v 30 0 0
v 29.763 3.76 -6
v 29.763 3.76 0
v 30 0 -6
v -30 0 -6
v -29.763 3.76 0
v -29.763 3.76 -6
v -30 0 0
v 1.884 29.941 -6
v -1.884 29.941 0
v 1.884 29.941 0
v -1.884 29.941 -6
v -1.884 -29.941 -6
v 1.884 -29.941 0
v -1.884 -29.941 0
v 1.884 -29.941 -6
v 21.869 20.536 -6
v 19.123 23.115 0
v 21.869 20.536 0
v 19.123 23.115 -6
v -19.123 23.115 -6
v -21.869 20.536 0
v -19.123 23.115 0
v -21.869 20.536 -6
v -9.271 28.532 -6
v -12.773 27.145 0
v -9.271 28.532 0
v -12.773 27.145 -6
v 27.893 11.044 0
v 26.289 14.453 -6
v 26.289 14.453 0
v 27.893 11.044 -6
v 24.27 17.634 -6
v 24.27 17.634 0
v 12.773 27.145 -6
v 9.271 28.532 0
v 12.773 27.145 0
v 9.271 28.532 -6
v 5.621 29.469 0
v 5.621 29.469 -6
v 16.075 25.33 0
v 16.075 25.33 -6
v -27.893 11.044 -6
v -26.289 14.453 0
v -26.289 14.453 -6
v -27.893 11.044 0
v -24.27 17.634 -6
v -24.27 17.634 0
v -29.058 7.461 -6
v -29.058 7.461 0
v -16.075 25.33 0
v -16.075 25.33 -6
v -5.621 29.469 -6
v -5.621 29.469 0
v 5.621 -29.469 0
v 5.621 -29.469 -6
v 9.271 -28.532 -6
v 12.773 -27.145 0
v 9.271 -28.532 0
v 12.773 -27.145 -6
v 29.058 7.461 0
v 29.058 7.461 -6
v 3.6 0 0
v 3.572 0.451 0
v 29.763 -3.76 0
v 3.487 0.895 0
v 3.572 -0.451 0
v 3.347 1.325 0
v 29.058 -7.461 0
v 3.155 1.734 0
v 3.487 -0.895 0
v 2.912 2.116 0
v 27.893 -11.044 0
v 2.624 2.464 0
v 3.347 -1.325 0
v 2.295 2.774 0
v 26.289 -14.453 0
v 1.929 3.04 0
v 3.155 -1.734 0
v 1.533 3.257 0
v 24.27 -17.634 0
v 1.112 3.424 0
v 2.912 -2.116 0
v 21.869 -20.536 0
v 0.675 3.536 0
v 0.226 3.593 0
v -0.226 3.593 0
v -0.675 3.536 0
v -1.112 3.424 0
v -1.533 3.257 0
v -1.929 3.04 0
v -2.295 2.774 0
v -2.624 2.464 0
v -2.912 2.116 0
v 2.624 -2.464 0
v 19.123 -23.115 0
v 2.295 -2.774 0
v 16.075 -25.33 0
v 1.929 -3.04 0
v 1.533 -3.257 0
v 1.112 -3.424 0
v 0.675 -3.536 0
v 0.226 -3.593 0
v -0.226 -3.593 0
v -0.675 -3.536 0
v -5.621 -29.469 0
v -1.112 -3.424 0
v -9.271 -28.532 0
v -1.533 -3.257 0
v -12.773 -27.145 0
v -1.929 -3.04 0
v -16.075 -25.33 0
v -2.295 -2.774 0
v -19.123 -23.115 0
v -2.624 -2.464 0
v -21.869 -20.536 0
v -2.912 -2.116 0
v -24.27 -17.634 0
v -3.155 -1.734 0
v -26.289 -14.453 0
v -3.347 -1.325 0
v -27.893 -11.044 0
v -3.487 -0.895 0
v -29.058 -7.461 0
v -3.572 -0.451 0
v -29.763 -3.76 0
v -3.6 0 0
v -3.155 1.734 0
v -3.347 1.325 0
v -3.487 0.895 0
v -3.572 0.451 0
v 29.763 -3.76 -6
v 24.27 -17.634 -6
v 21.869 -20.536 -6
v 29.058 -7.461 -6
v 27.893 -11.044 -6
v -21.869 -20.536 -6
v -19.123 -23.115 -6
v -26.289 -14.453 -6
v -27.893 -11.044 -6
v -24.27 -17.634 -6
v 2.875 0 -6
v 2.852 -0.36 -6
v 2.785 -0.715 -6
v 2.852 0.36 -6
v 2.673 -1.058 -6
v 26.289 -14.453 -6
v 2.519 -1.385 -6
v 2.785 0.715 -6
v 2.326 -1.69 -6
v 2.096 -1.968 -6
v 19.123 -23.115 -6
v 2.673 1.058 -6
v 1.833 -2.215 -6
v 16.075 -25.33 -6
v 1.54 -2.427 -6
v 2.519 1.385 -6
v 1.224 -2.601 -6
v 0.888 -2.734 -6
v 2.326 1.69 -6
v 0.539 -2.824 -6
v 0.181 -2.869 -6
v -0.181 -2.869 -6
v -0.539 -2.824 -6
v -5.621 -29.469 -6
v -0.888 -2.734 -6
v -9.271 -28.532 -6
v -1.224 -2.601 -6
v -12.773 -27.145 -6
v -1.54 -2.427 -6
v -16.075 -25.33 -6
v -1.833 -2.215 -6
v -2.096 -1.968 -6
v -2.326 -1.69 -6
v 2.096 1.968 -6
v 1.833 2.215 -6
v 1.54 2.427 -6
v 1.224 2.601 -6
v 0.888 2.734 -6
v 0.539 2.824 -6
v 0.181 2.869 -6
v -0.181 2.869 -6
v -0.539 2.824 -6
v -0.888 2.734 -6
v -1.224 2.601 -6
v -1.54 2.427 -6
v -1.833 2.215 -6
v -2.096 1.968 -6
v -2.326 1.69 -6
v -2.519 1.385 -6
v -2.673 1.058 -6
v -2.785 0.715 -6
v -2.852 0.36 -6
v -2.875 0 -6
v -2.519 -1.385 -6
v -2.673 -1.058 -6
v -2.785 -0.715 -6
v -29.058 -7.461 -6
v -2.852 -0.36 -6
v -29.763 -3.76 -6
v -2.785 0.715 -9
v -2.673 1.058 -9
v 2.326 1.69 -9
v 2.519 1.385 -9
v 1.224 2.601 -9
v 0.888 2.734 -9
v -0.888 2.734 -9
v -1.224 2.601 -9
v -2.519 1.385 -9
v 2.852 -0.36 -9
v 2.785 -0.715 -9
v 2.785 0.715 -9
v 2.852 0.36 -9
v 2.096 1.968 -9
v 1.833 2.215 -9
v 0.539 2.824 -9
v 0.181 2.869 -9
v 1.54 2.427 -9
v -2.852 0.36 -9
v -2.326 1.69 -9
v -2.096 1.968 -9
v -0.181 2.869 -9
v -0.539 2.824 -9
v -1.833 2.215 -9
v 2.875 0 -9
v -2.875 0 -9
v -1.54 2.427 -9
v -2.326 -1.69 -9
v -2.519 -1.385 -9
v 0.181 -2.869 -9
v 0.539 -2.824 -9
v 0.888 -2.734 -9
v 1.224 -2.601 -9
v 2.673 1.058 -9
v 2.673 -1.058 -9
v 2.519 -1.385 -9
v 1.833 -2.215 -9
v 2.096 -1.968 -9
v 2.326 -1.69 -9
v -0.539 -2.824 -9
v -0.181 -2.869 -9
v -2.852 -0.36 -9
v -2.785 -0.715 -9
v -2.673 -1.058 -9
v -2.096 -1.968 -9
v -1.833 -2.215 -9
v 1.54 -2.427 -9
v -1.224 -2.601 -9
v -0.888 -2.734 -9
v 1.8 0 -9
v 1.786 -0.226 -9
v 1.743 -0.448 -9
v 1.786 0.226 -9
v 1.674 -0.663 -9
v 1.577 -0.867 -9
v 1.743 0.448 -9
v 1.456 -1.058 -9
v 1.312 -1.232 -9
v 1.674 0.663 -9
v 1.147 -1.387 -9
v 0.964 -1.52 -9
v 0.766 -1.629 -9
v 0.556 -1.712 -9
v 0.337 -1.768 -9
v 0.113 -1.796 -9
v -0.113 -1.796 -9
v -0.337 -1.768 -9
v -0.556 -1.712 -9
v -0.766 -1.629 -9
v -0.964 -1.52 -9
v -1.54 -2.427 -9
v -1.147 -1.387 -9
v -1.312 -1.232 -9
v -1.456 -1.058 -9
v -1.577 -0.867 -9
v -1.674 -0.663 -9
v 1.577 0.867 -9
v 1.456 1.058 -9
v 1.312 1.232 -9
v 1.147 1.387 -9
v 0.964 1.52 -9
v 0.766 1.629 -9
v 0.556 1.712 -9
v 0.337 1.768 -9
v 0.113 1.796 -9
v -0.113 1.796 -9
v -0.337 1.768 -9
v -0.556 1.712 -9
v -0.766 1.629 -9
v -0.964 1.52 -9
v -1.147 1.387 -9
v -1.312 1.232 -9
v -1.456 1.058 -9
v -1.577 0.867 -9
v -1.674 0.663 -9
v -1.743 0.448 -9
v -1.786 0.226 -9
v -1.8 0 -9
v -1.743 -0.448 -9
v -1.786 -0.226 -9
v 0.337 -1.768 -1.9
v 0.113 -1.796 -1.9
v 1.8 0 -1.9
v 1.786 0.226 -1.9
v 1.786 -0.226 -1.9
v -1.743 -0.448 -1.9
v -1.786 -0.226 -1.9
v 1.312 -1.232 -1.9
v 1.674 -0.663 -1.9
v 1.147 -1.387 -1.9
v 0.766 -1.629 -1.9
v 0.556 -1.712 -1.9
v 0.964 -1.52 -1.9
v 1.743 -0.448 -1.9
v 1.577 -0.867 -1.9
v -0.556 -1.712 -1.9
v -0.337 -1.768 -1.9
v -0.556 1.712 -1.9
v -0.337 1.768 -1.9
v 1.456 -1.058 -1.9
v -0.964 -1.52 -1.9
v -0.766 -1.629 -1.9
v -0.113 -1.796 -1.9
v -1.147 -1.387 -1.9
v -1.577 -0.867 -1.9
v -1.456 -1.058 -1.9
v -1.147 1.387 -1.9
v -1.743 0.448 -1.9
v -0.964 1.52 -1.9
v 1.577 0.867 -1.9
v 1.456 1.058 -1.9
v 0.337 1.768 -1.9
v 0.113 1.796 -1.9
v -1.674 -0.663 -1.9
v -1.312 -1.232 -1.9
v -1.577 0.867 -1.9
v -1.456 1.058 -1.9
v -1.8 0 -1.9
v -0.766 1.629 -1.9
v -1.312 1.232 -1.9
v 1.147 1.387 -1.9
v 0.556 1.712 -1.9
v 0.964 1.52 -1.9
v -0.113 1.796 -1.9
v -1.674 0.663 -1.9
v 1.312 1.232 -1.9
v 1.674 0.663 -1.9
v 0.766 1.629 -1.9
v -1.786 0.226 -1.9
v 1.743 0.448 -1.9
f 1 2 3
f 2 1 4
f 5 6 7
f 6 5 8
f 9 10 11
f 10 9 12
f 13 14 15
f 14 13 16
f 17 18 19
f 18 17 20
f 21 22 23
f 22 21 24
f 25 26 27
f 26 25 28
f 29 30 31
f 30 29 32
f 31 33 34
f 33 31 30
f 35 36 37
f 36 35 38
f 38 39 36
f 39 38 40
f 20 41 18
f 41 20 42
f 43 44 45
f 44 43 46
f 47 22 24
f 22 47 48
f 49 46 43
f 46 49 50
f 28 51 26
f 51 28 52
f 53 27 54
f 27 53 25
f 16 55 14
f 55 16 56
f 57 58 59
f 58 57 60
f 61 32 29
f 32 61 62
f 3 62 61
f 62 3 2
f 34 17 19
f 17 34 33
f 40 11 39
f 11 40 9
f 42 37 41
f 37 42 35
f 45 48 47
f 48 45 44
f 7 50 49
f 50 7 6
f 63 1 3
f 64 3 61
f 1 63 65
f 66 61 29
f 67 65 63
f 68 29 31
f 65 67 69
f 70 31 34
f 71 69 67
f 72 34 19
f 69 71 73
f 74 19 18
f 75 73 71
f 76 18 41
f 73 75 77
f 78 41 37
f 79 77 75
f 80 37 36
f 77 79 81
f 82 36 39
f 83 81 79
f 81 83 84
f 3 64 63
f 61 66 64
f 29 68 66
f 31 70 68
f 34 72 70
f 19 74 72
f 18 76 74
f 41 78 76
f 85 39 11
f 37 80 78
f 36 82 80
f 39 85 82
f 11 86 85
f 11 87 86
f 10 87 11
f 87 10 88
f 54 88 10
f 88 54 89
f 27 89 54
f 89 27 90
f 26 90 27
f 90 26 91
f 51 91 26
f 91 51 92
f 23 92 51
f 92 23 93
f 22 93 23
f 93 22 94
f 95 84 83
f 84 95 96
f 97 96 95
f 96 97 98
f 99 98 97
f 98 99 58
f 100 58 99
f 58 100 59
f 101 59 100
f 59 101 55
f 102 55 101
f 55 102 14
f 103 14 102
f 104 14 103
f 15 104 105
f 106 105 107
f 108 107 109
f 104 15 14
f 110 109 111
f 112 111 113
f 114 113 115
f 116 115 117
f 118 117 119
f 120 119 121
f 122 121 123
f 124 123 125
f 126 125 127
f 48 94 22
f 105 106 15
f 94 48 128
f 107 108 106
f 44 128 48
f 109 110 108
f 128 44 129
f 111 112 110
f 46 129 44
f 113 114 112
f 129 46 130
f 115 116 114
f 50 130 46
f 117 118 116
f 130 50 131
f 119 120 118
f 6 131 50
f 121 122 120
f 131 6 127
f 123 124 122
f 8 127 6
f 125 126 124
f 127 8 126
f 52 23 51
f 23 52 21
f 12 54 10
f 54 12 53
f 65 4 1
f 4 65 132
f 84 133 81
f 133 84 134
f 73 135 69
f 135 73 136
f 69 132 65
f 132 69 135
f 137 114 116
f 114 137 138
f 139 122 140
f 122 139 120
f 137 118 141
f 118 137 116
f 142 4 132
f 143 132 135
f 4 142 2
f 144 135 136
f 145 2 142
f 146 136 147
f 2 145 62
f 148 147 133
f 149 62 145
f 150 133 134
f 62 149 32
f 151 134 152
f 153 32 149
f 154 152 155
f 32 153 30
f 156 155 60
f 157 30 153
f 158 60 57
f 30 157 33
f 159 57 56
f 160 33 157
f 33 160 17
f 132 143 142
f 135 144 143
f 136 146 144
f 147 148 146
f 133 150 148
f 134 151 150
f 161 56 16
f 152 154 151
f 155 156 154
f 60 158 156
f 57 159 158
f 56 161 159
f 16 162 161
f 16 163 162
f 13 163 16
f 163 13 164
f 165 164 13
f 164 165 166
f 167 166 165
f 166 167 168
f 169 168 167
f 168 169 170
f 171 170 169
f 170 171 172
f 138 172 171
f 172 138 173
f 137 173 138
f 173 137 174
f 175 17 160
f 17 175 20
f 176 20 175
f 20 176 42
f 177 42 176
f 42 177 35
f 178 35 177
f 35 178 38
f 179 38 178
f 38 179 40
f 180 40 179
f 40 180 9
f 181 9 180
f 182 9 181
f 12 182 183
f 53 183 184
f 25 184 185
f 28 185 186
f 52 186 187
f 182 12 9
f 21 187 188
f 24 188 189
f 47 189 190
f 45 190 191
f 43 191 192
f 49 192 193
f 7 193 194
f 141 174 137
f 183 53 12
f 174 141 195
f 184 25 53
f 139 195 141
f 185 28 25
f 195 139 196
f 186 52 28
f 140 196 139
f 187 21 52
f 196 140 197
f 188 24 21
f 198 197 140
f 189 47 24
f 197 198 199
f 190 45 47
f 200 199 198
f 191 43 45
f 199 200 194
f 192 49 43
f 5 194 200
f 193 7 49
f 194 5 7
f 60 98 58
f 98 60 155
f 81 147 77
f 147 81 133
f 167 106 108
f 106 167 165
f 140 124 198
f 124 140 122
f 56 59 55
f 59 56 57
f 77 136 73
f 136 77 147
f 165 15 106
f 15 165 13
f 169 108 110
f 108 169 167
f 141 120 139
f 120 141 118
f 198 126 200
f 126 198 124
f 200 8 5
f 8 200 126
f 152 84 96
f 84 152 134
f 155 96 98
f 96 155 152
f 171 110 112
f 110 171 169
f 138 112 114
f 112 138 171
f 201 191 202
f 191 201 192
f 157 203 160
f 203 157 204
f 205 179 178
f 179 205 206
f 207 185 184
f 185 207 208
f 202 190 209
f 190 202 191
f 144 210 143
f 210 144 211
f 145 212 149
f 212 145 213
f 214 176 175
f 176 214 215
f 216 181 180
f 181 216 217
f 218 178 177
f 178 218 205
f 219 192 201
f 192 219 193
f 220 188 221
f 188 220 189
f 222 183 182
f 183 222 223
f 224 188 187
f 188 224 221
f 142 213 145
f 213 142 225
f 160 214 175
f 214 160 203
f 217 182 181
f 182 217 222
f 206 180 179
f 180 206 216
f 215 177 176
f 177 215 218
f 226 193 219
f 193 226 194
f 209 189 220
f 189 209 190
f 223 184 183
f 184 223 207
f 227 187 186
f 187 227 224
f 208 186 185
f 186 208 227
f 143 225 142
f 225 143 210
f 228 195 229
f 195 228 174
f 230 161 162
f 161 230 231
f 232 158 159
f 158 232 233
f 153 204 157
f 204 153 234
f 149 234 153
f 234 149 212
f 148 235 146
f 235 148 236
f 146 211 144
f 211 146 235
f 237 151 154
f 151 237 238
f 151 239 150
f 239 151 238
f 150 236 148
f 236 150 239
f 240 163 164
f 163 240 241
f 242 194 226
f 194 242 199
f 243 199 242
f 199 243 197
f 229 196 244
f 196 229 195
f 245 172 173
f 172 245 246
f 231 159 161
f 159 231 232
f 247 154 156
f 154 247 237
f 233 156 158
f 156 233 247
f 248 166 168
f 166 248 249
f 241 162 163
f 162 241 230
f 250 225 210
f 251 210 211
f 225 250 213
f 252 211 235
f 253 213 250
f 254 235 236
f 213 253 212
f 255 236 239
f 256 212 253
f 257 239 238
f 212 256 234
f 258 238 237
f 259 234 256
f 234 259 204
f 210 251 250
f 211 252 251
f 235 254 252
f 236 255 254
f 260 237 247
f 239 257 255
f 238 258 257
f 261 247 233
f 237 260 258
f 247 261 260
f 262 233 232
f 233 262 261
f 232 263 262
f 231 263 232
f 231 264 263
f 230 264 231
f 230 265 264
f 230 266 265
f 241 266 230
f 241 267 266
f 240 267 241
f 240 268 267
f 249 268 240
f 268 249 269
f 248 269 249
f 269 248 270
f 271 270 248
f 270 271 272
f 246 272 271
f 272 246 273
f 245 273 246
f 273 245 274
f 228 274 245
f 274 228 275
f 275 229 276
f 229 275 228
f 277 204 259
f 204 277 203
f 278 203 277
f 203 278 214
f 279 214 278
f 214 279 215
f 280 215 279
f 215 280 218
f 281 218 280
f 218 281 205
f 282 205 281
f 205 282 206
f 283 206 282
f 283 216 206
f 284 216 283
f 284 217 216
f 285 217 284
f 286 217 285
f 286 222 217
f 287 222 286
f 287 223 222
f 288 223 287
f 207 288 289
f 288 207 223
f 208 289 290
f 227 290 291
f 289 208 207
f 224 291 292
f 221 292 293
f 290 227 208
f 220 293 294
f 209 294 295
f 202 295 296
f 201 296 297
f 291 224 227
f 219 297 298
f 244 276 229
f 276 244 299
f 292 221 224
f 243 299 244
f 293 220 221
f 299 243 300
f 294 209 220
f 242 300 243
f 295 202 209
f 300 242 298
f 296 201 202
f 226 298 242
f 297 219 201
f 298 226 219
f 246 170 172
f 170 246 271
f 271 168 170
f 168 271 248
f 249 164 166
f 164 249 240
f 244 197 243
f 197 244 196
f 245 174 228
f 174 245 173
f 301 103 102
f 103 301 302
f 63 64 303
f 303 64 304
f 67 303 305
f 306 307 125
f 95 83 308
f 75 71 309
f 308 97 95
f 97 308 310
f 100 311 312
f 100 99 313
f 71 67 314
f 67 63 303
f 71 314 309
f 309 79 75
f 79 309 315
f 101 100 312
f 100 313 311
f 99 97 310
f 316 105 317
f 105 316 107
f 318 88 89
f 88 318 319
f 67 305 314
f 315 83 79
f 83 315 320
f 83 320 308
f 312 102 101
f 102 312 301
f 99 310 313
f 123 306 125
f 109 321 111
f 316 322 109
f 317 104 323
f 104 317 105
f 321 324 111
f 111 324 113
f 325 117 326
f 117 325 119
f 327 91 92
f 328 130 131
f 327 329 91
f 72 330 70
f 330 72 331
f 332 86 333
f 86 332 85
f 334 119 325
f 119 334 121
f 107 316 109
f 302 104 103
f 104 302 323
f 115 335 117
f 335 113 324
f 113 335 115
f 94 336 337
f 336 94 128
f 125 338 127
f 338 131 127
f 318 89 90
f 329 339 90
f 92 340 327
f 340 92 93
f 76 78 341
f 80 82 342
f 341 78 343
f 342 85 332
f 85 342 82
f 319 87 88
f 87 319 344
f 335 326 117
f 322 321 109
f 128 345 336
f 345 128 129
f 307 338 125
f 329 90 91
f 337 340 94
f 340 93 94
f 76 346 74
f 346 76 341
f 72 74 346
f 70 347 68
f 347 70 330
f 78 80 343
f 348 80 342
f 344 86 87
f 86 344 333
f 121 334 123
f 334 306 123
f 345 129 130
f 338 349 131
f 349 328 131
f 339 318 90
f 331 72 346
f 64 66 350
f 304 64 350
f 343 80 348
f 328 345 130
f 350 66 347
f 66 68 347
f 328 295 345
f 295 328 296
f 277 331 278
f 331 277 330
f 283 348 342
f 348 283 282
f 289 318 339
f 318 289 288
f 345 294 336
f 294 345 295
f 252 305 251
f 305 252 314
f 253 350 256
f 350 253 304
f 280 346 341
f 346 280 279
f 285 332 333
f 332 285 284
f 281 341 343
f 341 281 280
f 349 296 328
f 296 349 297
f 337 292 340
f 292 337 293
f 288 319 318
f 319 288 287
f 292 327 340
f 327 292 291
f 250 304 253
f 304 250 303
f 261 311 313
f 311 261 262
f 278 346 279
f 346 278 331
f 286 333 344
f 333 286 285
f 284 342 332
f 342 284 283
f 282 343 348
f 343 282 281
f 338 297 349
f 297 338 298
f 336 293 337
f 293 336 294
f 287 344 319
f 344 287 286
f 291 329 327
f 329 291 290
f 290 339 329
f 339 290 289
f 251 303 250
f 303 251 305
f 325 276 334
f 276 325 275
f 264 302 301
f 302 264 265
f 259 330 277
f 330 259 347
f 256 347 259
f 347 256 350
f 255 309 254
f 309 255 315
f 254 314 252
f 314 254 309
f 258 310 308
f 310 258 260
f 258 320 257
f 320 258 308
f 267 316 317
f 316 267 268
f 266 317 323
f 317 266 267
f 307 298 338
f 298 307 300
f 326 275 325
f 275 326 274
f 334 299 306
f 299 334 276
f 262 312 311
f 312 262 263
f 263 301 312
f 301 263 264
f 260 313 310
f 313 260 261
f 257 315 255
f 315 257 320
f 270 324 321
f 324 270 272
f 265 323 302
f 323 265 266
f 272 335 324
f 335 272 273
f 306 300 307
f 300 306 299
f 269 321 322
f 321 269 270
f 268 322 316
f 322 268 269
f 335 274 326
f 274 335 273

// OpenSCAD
$fn = 50;


difference() {
	union() {
		translate(v = [0, 0, -6.0000000000]) {
			cylinder(h = 6, r = 30.0000000000);
		}
		translate(v = [0, 0, -9.0000000000]) {
			cylinder(h = 9, r = 2.8750000000);
		}
	}
	union() {
		translate(v = [0, 0, 0]) {
			rotate(a = [0, 0, 0]) {
				difference() {
					union() {
						translate(v = [0, 0, -9.0000000000]) {
							cylinder(h = 9, r = 1.5000000000);
						}
						translate(v = [0, 0, -1.9000000000]) {
							cylinder(h = 1.9000000000, r1 = 1.8000000000, r2 = 3.6000000000);
						}
						translate(v = [0, 0, -9.0000000000]) {
							cylinder(h = 9, r = 1.8000000000);
						}
						translate(v = [0, 0, -9.0000000000]) {
							cylinder(h = 9, r = 1.5000000000);
						}
					}
					union();
				}
			}
		}
	}
}
